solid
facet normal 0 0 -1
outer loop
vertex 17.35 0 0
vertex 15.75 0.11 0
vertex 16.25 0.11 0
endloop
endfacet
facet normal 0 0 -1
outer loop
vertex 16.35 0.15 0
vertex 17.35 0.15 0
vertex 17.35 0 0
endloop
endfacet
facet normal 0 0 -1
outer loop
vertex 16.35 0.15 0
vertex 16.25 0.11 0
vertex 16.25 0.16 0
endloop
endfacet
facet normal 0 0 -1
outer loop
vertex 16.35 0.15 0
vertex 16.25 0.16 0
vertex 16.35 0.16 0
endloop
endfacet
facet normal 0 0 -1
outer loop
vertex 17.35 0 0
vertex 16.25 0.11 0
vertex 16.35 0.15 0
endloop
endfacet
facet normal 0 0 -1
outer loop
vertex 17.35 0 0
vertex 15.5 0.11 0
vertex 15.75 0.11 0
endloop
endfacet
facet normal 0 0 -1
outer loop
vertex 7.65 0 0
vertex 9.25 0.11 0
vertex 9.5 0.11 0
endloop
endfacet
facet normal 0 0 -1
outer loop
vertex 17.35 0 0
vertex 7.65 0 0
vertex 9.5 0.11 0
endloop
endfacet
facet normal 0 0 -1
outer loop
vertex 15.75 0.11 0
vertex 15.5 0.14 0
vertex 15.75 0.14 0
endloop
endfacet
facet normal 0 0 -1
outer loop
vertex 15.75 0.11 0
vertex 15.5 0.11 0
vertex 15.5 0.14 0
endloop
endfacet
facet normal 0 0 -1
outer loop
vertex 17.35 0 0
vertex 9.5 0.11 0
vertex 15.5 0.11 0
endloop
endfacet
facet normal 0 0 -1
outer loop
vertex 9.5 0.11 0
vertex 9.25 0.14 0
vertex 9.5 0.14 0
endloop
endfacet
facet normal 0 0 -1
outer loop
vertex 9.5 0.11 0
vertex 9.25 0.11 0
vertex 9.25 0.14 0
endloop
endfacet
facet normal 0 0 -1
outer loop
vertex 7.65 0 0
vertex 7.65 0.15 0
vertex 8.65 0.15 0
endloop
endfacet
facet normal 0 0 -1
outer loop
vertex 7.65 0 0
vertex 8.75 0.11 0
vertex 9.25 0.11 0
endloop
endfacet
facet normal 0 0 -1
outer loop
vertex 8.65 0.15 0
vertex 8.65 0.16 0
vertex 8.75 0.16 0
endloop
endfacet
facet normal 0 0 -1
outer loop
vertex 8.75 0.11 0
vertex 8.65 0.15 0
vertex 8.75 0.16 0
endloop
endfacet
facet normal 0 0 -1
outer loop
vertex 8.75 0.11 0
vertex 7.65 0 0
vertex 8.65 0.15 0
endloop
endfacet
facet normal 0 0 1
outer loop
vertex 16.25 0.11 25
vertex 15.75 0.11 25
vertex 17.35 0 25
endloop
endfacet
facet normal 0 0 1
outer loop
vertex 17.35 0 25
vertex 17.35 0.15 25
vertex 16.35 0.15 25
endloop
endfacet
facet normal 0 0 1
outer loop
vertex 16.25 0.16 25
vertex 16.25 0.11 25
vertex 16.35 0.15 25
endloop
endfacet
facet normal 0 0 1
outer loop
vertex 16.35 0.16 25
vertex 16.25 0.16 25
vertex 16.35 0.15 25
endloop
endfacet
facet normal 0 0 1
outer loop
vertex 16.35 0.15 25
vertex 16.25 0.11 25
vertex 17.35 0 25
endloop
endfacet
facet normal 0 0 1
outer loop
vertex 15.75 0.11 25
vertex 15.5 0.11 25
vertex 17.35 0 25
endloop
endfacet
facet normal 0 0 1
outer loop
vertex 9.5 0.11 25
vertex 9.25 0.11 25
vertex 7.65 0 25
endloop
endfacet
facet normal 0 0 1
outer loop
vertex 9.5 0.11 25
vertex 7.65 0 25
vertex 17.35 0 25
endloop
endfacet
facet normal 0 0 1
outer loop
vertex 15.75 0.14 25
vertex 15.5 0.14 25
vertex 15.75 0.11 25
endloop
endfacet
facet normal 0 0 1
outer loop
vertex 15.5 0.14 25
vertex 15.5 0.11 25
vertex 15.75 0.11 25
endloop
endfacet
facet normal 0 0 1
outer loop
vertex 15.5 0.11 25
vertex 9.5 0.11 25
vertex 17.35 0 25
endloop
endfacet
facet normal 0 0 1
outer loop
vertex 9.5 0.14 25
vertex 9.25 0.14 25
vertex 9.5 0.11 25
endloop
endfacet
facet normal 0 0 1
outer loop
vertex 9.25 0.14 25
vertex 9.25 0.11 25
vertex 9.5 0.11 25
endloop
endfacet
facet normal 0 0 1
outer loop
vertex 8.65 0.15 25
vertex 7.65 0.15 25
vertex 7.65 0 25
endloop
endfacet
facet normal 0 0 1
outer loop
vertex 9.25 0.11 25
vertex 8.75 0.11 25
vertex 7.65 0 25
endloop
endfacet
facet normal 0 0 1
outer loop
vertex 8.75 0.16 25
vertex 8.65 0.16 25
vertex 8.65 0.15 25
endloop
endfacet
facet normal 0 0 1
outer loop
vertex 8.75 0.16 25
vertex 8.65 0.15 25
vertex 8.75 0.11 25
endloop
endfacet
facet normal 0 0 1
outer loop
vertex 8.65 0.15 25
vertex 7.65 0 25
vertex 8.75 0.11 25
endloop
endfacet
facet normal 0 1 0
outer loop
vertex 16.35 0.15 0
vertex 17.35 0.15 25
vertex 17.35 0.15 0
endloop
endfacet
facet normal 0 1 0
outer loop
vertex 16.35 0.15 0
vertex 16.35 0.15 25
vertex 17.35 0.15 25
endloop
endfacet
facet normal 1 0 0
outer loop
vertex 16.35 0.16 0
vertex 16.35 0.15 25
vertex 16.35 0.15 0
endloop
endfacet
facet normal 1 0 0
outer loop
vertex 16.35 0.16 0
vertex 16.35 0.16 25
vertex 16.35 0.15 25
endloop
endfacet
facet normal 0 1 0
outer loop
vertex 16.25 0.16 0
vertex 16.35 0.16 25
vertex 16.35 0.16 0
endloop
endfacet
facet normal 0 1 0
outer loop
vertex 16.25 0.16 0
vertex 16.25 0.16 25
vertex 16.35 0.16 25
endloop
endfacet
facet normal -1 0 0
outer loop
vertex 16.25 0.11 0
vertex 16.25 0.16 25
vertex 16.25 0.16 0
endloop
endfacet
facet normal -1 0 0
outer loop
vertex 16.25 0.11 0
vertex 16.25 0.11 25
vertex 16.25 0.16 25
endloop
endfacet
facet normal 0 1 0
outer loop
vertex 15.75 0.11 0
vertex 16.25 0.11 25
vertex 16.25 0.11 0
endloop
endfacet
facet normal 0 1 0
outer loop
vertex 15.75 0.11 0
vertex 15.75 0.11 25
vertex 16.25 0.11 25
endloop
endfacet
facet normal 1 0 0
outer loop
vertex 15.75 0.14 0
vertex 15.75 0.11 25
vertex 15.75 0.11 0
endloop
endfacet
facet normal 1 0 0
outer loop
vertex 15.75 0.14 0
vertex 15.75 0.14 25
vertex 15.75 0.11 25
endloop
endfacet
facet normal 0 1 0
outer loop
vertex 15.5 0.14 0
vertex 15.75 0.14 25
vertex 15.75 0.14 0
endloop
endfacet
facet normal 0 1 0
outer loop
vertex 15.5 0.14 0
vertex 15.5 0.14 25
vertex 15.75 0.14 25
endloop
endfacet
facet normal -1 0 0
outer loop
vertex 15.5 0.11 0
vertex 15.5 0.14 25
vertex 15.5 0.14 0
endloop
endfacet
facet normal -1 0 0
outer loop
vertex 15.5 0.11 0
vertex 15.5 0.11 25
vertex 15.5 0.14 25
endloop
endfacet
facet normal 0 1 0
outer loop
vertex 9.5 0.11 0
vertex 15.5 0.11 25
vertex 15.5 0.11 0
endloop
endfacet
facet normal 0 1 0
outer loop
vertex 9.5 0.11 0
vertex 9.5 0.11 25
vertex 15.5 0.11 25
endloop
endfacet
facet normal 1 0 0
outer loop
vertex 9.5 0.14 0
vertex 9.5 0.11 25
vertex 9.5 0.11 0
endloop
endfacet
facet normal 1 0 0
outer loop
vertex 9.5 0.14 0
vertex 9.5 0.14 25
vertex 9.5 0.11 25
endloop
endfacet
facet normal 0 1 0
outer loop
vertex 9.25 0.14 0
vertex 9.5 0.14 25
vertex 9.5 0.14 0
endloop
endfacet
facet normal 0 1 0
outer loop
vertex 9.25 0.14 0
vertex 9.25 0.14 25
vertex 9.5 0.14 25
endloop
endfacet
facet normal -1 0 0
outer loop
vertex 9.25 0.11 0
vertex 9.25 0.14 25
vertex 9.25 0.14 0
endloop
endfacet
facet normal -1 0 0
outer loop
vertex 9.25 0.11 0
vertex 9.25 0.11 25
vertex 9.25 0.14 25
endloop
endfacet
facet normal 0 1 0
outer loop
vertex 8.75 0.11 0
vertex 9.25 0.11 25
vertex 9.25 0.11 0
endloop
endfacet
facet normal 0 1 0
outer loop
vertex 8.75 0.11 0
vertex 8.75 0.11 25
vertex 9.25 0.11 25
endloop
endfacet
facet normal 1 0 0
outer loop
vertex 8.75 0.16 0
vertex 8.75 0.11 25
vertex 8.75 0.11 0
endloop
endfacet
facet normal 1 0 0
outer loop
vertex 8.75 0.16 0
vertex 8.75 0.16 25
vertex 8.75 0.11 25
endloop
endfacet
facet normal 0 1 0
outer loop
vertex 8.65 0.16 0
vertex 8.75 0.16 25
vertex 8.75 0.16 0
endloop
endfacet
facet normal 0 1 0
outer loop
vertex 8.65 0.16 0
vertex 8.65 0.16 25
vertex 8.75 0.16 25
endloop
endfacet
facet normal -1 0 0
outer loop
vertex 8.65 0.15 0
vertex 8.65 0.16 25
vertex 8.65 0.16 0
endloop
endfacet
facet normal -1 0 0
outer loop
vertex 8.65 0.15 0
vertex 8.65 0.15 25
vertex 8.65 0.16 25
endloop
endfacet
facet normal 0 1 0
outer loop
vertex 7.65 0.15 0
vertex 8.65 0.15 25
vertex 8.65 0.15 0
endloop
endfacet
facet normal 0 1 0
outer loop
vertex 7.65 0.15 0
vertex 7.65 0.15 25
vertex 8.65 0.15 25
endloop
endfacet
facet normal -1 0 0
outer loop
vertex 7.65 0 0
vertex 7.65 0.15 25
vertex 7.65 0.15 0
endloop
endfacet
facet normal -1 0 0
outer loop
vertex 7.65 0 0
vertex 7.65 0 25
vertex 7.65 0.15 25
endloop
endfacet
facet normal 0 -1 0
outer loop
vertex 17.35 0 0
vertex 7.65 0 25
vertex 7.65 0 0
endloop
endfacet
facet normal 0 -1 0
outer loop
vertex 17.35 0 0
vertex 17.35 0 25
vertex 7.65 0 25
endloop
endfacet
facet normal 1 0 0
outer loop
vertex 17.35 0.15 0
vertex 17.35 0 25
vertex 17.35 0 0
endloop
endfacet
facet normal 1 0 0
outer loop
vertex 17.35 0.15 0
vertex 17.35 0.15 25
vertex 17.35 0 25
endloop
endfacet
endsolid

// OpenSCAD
//general
meter = 1;
cm = meter / 100;

module generateStreetProfile(total_width, line_width, line_left_amount, line_right_amount, sidewalk_width, sidewalk_right, sidewalk_left, bike_width, bike_left, bike_right, bike_seperator_width, bike_seperator_left_amount, bike_seperator_right_amount, curb_width, curb_left, curb_right, gen_h) {
    // Predefined values (changable)
    meter = 1;
    cm = meter / 100;
    infinite = 1 * total_width;
    sidewalk_height = gen_h * 3 / 4;
    curb_height = sidewalk_height + 1 * cm;
    road_height = curb_height - 5 * cm;
    bike_seperator_height = road_height + 3 * cm;
    bike_height = road_height;

    // Magic calculations
    line_location = 1/2 * total_width - line_width * line_left_amount;
    line_totalwidth = line_width * (line_left_amount + line_right_amount);
    bike_seperator_totalwidth = bike_seperator_width * (bike_seperator_left_amount + bike_seperator_right_amount) + line_totalwidth;
    bike_seperator_location = line_location - bike_seperator_left_amount * bike_seperator_width;
    bike_totalwidth = bike_width * (bike_left + bike_right) + bike_seperator_totalwidth;
    bike_location = bike_seperator_location - bike_width * bike_left;
    curb_totalwidth = (curb_left+curb_right) * curb_width + bike_totalwidth;
    curb_location = bike_location - curb_width * curb_left;
    sidewalk_totalwidth = (sidewalk_right + sidewalk_left) * sidewalk_width + curb_totalwidth;
    sidewalk_location = curb_location - sidewalk_width * sidewalk_left;

    difference() {
        // Generating the raw street from width
        square([total_width, gen_h]);
    
        // Driving lane
        translate([line_location, road_height, 0]) {
            square([line_totalwidth, infinite]);
        }
    
        // Bike separator
        translate([bike_seperator_location, bike_seperator_height, 0]) {
            square([bike_seperator_totalwidth, infinite]);
        }
    
        // Bike lane left / right
        difference() {
            translate([bike_location, bike_height, 0]) {
                square([bike_totalwidth, infinite]);
            }
            // Exclude the bike separator out of the two
            translate([bike_seperator_location, 0, 0]) {
                square([bike_seperator_totalwidth, infinite]);
            }
        }
    
        // Curb
        translate([curb_location, curb_height, 0]) {
            square([curb_totalwidth, infinite]);
        }

        // Sidewalk
        difference() {
            translate([sidewalk_location, sidewalk_height, 0]) {
                square([sidewalk_totalwidth, infinite]);
            }
        
            // Curb
            translate([curb_location, 0, 0]) {
                square([curb_totalwidth, infinite]);
            }
        }
        
        //remove rest
        difference() {
            square([total_width, infinite]);
            translate([sidewalk_location, 0, 0]) {
                square([sidewalk_totalwidth, infinite]);
            }
        }
    }
}



linear_extrude(height = 25*meter) {
    // Example usage of the function
        generateStreetProfile(
        25 * meter, // total_width
        3 * meter,  // line_width
        1,          // line_left_amount
        1,          // line_right_amount
        1 * meter,  // sidewalk_width
        1,          // sidewalk_right
        1,          // sidewalk_left
        1/2 * meter, // bike_width
        1,          // bike_left
        1,          // bike_right
        1/4 * meter, // bike_seperator_width
        1,          // bike_seperator_left_amount
        1,          // bike_seperator_right_amount
        10 * cm,     // curb_width
        1,          //curb_left
        1,          //curb_right
        20 * cm     // gen_h
    );
}
